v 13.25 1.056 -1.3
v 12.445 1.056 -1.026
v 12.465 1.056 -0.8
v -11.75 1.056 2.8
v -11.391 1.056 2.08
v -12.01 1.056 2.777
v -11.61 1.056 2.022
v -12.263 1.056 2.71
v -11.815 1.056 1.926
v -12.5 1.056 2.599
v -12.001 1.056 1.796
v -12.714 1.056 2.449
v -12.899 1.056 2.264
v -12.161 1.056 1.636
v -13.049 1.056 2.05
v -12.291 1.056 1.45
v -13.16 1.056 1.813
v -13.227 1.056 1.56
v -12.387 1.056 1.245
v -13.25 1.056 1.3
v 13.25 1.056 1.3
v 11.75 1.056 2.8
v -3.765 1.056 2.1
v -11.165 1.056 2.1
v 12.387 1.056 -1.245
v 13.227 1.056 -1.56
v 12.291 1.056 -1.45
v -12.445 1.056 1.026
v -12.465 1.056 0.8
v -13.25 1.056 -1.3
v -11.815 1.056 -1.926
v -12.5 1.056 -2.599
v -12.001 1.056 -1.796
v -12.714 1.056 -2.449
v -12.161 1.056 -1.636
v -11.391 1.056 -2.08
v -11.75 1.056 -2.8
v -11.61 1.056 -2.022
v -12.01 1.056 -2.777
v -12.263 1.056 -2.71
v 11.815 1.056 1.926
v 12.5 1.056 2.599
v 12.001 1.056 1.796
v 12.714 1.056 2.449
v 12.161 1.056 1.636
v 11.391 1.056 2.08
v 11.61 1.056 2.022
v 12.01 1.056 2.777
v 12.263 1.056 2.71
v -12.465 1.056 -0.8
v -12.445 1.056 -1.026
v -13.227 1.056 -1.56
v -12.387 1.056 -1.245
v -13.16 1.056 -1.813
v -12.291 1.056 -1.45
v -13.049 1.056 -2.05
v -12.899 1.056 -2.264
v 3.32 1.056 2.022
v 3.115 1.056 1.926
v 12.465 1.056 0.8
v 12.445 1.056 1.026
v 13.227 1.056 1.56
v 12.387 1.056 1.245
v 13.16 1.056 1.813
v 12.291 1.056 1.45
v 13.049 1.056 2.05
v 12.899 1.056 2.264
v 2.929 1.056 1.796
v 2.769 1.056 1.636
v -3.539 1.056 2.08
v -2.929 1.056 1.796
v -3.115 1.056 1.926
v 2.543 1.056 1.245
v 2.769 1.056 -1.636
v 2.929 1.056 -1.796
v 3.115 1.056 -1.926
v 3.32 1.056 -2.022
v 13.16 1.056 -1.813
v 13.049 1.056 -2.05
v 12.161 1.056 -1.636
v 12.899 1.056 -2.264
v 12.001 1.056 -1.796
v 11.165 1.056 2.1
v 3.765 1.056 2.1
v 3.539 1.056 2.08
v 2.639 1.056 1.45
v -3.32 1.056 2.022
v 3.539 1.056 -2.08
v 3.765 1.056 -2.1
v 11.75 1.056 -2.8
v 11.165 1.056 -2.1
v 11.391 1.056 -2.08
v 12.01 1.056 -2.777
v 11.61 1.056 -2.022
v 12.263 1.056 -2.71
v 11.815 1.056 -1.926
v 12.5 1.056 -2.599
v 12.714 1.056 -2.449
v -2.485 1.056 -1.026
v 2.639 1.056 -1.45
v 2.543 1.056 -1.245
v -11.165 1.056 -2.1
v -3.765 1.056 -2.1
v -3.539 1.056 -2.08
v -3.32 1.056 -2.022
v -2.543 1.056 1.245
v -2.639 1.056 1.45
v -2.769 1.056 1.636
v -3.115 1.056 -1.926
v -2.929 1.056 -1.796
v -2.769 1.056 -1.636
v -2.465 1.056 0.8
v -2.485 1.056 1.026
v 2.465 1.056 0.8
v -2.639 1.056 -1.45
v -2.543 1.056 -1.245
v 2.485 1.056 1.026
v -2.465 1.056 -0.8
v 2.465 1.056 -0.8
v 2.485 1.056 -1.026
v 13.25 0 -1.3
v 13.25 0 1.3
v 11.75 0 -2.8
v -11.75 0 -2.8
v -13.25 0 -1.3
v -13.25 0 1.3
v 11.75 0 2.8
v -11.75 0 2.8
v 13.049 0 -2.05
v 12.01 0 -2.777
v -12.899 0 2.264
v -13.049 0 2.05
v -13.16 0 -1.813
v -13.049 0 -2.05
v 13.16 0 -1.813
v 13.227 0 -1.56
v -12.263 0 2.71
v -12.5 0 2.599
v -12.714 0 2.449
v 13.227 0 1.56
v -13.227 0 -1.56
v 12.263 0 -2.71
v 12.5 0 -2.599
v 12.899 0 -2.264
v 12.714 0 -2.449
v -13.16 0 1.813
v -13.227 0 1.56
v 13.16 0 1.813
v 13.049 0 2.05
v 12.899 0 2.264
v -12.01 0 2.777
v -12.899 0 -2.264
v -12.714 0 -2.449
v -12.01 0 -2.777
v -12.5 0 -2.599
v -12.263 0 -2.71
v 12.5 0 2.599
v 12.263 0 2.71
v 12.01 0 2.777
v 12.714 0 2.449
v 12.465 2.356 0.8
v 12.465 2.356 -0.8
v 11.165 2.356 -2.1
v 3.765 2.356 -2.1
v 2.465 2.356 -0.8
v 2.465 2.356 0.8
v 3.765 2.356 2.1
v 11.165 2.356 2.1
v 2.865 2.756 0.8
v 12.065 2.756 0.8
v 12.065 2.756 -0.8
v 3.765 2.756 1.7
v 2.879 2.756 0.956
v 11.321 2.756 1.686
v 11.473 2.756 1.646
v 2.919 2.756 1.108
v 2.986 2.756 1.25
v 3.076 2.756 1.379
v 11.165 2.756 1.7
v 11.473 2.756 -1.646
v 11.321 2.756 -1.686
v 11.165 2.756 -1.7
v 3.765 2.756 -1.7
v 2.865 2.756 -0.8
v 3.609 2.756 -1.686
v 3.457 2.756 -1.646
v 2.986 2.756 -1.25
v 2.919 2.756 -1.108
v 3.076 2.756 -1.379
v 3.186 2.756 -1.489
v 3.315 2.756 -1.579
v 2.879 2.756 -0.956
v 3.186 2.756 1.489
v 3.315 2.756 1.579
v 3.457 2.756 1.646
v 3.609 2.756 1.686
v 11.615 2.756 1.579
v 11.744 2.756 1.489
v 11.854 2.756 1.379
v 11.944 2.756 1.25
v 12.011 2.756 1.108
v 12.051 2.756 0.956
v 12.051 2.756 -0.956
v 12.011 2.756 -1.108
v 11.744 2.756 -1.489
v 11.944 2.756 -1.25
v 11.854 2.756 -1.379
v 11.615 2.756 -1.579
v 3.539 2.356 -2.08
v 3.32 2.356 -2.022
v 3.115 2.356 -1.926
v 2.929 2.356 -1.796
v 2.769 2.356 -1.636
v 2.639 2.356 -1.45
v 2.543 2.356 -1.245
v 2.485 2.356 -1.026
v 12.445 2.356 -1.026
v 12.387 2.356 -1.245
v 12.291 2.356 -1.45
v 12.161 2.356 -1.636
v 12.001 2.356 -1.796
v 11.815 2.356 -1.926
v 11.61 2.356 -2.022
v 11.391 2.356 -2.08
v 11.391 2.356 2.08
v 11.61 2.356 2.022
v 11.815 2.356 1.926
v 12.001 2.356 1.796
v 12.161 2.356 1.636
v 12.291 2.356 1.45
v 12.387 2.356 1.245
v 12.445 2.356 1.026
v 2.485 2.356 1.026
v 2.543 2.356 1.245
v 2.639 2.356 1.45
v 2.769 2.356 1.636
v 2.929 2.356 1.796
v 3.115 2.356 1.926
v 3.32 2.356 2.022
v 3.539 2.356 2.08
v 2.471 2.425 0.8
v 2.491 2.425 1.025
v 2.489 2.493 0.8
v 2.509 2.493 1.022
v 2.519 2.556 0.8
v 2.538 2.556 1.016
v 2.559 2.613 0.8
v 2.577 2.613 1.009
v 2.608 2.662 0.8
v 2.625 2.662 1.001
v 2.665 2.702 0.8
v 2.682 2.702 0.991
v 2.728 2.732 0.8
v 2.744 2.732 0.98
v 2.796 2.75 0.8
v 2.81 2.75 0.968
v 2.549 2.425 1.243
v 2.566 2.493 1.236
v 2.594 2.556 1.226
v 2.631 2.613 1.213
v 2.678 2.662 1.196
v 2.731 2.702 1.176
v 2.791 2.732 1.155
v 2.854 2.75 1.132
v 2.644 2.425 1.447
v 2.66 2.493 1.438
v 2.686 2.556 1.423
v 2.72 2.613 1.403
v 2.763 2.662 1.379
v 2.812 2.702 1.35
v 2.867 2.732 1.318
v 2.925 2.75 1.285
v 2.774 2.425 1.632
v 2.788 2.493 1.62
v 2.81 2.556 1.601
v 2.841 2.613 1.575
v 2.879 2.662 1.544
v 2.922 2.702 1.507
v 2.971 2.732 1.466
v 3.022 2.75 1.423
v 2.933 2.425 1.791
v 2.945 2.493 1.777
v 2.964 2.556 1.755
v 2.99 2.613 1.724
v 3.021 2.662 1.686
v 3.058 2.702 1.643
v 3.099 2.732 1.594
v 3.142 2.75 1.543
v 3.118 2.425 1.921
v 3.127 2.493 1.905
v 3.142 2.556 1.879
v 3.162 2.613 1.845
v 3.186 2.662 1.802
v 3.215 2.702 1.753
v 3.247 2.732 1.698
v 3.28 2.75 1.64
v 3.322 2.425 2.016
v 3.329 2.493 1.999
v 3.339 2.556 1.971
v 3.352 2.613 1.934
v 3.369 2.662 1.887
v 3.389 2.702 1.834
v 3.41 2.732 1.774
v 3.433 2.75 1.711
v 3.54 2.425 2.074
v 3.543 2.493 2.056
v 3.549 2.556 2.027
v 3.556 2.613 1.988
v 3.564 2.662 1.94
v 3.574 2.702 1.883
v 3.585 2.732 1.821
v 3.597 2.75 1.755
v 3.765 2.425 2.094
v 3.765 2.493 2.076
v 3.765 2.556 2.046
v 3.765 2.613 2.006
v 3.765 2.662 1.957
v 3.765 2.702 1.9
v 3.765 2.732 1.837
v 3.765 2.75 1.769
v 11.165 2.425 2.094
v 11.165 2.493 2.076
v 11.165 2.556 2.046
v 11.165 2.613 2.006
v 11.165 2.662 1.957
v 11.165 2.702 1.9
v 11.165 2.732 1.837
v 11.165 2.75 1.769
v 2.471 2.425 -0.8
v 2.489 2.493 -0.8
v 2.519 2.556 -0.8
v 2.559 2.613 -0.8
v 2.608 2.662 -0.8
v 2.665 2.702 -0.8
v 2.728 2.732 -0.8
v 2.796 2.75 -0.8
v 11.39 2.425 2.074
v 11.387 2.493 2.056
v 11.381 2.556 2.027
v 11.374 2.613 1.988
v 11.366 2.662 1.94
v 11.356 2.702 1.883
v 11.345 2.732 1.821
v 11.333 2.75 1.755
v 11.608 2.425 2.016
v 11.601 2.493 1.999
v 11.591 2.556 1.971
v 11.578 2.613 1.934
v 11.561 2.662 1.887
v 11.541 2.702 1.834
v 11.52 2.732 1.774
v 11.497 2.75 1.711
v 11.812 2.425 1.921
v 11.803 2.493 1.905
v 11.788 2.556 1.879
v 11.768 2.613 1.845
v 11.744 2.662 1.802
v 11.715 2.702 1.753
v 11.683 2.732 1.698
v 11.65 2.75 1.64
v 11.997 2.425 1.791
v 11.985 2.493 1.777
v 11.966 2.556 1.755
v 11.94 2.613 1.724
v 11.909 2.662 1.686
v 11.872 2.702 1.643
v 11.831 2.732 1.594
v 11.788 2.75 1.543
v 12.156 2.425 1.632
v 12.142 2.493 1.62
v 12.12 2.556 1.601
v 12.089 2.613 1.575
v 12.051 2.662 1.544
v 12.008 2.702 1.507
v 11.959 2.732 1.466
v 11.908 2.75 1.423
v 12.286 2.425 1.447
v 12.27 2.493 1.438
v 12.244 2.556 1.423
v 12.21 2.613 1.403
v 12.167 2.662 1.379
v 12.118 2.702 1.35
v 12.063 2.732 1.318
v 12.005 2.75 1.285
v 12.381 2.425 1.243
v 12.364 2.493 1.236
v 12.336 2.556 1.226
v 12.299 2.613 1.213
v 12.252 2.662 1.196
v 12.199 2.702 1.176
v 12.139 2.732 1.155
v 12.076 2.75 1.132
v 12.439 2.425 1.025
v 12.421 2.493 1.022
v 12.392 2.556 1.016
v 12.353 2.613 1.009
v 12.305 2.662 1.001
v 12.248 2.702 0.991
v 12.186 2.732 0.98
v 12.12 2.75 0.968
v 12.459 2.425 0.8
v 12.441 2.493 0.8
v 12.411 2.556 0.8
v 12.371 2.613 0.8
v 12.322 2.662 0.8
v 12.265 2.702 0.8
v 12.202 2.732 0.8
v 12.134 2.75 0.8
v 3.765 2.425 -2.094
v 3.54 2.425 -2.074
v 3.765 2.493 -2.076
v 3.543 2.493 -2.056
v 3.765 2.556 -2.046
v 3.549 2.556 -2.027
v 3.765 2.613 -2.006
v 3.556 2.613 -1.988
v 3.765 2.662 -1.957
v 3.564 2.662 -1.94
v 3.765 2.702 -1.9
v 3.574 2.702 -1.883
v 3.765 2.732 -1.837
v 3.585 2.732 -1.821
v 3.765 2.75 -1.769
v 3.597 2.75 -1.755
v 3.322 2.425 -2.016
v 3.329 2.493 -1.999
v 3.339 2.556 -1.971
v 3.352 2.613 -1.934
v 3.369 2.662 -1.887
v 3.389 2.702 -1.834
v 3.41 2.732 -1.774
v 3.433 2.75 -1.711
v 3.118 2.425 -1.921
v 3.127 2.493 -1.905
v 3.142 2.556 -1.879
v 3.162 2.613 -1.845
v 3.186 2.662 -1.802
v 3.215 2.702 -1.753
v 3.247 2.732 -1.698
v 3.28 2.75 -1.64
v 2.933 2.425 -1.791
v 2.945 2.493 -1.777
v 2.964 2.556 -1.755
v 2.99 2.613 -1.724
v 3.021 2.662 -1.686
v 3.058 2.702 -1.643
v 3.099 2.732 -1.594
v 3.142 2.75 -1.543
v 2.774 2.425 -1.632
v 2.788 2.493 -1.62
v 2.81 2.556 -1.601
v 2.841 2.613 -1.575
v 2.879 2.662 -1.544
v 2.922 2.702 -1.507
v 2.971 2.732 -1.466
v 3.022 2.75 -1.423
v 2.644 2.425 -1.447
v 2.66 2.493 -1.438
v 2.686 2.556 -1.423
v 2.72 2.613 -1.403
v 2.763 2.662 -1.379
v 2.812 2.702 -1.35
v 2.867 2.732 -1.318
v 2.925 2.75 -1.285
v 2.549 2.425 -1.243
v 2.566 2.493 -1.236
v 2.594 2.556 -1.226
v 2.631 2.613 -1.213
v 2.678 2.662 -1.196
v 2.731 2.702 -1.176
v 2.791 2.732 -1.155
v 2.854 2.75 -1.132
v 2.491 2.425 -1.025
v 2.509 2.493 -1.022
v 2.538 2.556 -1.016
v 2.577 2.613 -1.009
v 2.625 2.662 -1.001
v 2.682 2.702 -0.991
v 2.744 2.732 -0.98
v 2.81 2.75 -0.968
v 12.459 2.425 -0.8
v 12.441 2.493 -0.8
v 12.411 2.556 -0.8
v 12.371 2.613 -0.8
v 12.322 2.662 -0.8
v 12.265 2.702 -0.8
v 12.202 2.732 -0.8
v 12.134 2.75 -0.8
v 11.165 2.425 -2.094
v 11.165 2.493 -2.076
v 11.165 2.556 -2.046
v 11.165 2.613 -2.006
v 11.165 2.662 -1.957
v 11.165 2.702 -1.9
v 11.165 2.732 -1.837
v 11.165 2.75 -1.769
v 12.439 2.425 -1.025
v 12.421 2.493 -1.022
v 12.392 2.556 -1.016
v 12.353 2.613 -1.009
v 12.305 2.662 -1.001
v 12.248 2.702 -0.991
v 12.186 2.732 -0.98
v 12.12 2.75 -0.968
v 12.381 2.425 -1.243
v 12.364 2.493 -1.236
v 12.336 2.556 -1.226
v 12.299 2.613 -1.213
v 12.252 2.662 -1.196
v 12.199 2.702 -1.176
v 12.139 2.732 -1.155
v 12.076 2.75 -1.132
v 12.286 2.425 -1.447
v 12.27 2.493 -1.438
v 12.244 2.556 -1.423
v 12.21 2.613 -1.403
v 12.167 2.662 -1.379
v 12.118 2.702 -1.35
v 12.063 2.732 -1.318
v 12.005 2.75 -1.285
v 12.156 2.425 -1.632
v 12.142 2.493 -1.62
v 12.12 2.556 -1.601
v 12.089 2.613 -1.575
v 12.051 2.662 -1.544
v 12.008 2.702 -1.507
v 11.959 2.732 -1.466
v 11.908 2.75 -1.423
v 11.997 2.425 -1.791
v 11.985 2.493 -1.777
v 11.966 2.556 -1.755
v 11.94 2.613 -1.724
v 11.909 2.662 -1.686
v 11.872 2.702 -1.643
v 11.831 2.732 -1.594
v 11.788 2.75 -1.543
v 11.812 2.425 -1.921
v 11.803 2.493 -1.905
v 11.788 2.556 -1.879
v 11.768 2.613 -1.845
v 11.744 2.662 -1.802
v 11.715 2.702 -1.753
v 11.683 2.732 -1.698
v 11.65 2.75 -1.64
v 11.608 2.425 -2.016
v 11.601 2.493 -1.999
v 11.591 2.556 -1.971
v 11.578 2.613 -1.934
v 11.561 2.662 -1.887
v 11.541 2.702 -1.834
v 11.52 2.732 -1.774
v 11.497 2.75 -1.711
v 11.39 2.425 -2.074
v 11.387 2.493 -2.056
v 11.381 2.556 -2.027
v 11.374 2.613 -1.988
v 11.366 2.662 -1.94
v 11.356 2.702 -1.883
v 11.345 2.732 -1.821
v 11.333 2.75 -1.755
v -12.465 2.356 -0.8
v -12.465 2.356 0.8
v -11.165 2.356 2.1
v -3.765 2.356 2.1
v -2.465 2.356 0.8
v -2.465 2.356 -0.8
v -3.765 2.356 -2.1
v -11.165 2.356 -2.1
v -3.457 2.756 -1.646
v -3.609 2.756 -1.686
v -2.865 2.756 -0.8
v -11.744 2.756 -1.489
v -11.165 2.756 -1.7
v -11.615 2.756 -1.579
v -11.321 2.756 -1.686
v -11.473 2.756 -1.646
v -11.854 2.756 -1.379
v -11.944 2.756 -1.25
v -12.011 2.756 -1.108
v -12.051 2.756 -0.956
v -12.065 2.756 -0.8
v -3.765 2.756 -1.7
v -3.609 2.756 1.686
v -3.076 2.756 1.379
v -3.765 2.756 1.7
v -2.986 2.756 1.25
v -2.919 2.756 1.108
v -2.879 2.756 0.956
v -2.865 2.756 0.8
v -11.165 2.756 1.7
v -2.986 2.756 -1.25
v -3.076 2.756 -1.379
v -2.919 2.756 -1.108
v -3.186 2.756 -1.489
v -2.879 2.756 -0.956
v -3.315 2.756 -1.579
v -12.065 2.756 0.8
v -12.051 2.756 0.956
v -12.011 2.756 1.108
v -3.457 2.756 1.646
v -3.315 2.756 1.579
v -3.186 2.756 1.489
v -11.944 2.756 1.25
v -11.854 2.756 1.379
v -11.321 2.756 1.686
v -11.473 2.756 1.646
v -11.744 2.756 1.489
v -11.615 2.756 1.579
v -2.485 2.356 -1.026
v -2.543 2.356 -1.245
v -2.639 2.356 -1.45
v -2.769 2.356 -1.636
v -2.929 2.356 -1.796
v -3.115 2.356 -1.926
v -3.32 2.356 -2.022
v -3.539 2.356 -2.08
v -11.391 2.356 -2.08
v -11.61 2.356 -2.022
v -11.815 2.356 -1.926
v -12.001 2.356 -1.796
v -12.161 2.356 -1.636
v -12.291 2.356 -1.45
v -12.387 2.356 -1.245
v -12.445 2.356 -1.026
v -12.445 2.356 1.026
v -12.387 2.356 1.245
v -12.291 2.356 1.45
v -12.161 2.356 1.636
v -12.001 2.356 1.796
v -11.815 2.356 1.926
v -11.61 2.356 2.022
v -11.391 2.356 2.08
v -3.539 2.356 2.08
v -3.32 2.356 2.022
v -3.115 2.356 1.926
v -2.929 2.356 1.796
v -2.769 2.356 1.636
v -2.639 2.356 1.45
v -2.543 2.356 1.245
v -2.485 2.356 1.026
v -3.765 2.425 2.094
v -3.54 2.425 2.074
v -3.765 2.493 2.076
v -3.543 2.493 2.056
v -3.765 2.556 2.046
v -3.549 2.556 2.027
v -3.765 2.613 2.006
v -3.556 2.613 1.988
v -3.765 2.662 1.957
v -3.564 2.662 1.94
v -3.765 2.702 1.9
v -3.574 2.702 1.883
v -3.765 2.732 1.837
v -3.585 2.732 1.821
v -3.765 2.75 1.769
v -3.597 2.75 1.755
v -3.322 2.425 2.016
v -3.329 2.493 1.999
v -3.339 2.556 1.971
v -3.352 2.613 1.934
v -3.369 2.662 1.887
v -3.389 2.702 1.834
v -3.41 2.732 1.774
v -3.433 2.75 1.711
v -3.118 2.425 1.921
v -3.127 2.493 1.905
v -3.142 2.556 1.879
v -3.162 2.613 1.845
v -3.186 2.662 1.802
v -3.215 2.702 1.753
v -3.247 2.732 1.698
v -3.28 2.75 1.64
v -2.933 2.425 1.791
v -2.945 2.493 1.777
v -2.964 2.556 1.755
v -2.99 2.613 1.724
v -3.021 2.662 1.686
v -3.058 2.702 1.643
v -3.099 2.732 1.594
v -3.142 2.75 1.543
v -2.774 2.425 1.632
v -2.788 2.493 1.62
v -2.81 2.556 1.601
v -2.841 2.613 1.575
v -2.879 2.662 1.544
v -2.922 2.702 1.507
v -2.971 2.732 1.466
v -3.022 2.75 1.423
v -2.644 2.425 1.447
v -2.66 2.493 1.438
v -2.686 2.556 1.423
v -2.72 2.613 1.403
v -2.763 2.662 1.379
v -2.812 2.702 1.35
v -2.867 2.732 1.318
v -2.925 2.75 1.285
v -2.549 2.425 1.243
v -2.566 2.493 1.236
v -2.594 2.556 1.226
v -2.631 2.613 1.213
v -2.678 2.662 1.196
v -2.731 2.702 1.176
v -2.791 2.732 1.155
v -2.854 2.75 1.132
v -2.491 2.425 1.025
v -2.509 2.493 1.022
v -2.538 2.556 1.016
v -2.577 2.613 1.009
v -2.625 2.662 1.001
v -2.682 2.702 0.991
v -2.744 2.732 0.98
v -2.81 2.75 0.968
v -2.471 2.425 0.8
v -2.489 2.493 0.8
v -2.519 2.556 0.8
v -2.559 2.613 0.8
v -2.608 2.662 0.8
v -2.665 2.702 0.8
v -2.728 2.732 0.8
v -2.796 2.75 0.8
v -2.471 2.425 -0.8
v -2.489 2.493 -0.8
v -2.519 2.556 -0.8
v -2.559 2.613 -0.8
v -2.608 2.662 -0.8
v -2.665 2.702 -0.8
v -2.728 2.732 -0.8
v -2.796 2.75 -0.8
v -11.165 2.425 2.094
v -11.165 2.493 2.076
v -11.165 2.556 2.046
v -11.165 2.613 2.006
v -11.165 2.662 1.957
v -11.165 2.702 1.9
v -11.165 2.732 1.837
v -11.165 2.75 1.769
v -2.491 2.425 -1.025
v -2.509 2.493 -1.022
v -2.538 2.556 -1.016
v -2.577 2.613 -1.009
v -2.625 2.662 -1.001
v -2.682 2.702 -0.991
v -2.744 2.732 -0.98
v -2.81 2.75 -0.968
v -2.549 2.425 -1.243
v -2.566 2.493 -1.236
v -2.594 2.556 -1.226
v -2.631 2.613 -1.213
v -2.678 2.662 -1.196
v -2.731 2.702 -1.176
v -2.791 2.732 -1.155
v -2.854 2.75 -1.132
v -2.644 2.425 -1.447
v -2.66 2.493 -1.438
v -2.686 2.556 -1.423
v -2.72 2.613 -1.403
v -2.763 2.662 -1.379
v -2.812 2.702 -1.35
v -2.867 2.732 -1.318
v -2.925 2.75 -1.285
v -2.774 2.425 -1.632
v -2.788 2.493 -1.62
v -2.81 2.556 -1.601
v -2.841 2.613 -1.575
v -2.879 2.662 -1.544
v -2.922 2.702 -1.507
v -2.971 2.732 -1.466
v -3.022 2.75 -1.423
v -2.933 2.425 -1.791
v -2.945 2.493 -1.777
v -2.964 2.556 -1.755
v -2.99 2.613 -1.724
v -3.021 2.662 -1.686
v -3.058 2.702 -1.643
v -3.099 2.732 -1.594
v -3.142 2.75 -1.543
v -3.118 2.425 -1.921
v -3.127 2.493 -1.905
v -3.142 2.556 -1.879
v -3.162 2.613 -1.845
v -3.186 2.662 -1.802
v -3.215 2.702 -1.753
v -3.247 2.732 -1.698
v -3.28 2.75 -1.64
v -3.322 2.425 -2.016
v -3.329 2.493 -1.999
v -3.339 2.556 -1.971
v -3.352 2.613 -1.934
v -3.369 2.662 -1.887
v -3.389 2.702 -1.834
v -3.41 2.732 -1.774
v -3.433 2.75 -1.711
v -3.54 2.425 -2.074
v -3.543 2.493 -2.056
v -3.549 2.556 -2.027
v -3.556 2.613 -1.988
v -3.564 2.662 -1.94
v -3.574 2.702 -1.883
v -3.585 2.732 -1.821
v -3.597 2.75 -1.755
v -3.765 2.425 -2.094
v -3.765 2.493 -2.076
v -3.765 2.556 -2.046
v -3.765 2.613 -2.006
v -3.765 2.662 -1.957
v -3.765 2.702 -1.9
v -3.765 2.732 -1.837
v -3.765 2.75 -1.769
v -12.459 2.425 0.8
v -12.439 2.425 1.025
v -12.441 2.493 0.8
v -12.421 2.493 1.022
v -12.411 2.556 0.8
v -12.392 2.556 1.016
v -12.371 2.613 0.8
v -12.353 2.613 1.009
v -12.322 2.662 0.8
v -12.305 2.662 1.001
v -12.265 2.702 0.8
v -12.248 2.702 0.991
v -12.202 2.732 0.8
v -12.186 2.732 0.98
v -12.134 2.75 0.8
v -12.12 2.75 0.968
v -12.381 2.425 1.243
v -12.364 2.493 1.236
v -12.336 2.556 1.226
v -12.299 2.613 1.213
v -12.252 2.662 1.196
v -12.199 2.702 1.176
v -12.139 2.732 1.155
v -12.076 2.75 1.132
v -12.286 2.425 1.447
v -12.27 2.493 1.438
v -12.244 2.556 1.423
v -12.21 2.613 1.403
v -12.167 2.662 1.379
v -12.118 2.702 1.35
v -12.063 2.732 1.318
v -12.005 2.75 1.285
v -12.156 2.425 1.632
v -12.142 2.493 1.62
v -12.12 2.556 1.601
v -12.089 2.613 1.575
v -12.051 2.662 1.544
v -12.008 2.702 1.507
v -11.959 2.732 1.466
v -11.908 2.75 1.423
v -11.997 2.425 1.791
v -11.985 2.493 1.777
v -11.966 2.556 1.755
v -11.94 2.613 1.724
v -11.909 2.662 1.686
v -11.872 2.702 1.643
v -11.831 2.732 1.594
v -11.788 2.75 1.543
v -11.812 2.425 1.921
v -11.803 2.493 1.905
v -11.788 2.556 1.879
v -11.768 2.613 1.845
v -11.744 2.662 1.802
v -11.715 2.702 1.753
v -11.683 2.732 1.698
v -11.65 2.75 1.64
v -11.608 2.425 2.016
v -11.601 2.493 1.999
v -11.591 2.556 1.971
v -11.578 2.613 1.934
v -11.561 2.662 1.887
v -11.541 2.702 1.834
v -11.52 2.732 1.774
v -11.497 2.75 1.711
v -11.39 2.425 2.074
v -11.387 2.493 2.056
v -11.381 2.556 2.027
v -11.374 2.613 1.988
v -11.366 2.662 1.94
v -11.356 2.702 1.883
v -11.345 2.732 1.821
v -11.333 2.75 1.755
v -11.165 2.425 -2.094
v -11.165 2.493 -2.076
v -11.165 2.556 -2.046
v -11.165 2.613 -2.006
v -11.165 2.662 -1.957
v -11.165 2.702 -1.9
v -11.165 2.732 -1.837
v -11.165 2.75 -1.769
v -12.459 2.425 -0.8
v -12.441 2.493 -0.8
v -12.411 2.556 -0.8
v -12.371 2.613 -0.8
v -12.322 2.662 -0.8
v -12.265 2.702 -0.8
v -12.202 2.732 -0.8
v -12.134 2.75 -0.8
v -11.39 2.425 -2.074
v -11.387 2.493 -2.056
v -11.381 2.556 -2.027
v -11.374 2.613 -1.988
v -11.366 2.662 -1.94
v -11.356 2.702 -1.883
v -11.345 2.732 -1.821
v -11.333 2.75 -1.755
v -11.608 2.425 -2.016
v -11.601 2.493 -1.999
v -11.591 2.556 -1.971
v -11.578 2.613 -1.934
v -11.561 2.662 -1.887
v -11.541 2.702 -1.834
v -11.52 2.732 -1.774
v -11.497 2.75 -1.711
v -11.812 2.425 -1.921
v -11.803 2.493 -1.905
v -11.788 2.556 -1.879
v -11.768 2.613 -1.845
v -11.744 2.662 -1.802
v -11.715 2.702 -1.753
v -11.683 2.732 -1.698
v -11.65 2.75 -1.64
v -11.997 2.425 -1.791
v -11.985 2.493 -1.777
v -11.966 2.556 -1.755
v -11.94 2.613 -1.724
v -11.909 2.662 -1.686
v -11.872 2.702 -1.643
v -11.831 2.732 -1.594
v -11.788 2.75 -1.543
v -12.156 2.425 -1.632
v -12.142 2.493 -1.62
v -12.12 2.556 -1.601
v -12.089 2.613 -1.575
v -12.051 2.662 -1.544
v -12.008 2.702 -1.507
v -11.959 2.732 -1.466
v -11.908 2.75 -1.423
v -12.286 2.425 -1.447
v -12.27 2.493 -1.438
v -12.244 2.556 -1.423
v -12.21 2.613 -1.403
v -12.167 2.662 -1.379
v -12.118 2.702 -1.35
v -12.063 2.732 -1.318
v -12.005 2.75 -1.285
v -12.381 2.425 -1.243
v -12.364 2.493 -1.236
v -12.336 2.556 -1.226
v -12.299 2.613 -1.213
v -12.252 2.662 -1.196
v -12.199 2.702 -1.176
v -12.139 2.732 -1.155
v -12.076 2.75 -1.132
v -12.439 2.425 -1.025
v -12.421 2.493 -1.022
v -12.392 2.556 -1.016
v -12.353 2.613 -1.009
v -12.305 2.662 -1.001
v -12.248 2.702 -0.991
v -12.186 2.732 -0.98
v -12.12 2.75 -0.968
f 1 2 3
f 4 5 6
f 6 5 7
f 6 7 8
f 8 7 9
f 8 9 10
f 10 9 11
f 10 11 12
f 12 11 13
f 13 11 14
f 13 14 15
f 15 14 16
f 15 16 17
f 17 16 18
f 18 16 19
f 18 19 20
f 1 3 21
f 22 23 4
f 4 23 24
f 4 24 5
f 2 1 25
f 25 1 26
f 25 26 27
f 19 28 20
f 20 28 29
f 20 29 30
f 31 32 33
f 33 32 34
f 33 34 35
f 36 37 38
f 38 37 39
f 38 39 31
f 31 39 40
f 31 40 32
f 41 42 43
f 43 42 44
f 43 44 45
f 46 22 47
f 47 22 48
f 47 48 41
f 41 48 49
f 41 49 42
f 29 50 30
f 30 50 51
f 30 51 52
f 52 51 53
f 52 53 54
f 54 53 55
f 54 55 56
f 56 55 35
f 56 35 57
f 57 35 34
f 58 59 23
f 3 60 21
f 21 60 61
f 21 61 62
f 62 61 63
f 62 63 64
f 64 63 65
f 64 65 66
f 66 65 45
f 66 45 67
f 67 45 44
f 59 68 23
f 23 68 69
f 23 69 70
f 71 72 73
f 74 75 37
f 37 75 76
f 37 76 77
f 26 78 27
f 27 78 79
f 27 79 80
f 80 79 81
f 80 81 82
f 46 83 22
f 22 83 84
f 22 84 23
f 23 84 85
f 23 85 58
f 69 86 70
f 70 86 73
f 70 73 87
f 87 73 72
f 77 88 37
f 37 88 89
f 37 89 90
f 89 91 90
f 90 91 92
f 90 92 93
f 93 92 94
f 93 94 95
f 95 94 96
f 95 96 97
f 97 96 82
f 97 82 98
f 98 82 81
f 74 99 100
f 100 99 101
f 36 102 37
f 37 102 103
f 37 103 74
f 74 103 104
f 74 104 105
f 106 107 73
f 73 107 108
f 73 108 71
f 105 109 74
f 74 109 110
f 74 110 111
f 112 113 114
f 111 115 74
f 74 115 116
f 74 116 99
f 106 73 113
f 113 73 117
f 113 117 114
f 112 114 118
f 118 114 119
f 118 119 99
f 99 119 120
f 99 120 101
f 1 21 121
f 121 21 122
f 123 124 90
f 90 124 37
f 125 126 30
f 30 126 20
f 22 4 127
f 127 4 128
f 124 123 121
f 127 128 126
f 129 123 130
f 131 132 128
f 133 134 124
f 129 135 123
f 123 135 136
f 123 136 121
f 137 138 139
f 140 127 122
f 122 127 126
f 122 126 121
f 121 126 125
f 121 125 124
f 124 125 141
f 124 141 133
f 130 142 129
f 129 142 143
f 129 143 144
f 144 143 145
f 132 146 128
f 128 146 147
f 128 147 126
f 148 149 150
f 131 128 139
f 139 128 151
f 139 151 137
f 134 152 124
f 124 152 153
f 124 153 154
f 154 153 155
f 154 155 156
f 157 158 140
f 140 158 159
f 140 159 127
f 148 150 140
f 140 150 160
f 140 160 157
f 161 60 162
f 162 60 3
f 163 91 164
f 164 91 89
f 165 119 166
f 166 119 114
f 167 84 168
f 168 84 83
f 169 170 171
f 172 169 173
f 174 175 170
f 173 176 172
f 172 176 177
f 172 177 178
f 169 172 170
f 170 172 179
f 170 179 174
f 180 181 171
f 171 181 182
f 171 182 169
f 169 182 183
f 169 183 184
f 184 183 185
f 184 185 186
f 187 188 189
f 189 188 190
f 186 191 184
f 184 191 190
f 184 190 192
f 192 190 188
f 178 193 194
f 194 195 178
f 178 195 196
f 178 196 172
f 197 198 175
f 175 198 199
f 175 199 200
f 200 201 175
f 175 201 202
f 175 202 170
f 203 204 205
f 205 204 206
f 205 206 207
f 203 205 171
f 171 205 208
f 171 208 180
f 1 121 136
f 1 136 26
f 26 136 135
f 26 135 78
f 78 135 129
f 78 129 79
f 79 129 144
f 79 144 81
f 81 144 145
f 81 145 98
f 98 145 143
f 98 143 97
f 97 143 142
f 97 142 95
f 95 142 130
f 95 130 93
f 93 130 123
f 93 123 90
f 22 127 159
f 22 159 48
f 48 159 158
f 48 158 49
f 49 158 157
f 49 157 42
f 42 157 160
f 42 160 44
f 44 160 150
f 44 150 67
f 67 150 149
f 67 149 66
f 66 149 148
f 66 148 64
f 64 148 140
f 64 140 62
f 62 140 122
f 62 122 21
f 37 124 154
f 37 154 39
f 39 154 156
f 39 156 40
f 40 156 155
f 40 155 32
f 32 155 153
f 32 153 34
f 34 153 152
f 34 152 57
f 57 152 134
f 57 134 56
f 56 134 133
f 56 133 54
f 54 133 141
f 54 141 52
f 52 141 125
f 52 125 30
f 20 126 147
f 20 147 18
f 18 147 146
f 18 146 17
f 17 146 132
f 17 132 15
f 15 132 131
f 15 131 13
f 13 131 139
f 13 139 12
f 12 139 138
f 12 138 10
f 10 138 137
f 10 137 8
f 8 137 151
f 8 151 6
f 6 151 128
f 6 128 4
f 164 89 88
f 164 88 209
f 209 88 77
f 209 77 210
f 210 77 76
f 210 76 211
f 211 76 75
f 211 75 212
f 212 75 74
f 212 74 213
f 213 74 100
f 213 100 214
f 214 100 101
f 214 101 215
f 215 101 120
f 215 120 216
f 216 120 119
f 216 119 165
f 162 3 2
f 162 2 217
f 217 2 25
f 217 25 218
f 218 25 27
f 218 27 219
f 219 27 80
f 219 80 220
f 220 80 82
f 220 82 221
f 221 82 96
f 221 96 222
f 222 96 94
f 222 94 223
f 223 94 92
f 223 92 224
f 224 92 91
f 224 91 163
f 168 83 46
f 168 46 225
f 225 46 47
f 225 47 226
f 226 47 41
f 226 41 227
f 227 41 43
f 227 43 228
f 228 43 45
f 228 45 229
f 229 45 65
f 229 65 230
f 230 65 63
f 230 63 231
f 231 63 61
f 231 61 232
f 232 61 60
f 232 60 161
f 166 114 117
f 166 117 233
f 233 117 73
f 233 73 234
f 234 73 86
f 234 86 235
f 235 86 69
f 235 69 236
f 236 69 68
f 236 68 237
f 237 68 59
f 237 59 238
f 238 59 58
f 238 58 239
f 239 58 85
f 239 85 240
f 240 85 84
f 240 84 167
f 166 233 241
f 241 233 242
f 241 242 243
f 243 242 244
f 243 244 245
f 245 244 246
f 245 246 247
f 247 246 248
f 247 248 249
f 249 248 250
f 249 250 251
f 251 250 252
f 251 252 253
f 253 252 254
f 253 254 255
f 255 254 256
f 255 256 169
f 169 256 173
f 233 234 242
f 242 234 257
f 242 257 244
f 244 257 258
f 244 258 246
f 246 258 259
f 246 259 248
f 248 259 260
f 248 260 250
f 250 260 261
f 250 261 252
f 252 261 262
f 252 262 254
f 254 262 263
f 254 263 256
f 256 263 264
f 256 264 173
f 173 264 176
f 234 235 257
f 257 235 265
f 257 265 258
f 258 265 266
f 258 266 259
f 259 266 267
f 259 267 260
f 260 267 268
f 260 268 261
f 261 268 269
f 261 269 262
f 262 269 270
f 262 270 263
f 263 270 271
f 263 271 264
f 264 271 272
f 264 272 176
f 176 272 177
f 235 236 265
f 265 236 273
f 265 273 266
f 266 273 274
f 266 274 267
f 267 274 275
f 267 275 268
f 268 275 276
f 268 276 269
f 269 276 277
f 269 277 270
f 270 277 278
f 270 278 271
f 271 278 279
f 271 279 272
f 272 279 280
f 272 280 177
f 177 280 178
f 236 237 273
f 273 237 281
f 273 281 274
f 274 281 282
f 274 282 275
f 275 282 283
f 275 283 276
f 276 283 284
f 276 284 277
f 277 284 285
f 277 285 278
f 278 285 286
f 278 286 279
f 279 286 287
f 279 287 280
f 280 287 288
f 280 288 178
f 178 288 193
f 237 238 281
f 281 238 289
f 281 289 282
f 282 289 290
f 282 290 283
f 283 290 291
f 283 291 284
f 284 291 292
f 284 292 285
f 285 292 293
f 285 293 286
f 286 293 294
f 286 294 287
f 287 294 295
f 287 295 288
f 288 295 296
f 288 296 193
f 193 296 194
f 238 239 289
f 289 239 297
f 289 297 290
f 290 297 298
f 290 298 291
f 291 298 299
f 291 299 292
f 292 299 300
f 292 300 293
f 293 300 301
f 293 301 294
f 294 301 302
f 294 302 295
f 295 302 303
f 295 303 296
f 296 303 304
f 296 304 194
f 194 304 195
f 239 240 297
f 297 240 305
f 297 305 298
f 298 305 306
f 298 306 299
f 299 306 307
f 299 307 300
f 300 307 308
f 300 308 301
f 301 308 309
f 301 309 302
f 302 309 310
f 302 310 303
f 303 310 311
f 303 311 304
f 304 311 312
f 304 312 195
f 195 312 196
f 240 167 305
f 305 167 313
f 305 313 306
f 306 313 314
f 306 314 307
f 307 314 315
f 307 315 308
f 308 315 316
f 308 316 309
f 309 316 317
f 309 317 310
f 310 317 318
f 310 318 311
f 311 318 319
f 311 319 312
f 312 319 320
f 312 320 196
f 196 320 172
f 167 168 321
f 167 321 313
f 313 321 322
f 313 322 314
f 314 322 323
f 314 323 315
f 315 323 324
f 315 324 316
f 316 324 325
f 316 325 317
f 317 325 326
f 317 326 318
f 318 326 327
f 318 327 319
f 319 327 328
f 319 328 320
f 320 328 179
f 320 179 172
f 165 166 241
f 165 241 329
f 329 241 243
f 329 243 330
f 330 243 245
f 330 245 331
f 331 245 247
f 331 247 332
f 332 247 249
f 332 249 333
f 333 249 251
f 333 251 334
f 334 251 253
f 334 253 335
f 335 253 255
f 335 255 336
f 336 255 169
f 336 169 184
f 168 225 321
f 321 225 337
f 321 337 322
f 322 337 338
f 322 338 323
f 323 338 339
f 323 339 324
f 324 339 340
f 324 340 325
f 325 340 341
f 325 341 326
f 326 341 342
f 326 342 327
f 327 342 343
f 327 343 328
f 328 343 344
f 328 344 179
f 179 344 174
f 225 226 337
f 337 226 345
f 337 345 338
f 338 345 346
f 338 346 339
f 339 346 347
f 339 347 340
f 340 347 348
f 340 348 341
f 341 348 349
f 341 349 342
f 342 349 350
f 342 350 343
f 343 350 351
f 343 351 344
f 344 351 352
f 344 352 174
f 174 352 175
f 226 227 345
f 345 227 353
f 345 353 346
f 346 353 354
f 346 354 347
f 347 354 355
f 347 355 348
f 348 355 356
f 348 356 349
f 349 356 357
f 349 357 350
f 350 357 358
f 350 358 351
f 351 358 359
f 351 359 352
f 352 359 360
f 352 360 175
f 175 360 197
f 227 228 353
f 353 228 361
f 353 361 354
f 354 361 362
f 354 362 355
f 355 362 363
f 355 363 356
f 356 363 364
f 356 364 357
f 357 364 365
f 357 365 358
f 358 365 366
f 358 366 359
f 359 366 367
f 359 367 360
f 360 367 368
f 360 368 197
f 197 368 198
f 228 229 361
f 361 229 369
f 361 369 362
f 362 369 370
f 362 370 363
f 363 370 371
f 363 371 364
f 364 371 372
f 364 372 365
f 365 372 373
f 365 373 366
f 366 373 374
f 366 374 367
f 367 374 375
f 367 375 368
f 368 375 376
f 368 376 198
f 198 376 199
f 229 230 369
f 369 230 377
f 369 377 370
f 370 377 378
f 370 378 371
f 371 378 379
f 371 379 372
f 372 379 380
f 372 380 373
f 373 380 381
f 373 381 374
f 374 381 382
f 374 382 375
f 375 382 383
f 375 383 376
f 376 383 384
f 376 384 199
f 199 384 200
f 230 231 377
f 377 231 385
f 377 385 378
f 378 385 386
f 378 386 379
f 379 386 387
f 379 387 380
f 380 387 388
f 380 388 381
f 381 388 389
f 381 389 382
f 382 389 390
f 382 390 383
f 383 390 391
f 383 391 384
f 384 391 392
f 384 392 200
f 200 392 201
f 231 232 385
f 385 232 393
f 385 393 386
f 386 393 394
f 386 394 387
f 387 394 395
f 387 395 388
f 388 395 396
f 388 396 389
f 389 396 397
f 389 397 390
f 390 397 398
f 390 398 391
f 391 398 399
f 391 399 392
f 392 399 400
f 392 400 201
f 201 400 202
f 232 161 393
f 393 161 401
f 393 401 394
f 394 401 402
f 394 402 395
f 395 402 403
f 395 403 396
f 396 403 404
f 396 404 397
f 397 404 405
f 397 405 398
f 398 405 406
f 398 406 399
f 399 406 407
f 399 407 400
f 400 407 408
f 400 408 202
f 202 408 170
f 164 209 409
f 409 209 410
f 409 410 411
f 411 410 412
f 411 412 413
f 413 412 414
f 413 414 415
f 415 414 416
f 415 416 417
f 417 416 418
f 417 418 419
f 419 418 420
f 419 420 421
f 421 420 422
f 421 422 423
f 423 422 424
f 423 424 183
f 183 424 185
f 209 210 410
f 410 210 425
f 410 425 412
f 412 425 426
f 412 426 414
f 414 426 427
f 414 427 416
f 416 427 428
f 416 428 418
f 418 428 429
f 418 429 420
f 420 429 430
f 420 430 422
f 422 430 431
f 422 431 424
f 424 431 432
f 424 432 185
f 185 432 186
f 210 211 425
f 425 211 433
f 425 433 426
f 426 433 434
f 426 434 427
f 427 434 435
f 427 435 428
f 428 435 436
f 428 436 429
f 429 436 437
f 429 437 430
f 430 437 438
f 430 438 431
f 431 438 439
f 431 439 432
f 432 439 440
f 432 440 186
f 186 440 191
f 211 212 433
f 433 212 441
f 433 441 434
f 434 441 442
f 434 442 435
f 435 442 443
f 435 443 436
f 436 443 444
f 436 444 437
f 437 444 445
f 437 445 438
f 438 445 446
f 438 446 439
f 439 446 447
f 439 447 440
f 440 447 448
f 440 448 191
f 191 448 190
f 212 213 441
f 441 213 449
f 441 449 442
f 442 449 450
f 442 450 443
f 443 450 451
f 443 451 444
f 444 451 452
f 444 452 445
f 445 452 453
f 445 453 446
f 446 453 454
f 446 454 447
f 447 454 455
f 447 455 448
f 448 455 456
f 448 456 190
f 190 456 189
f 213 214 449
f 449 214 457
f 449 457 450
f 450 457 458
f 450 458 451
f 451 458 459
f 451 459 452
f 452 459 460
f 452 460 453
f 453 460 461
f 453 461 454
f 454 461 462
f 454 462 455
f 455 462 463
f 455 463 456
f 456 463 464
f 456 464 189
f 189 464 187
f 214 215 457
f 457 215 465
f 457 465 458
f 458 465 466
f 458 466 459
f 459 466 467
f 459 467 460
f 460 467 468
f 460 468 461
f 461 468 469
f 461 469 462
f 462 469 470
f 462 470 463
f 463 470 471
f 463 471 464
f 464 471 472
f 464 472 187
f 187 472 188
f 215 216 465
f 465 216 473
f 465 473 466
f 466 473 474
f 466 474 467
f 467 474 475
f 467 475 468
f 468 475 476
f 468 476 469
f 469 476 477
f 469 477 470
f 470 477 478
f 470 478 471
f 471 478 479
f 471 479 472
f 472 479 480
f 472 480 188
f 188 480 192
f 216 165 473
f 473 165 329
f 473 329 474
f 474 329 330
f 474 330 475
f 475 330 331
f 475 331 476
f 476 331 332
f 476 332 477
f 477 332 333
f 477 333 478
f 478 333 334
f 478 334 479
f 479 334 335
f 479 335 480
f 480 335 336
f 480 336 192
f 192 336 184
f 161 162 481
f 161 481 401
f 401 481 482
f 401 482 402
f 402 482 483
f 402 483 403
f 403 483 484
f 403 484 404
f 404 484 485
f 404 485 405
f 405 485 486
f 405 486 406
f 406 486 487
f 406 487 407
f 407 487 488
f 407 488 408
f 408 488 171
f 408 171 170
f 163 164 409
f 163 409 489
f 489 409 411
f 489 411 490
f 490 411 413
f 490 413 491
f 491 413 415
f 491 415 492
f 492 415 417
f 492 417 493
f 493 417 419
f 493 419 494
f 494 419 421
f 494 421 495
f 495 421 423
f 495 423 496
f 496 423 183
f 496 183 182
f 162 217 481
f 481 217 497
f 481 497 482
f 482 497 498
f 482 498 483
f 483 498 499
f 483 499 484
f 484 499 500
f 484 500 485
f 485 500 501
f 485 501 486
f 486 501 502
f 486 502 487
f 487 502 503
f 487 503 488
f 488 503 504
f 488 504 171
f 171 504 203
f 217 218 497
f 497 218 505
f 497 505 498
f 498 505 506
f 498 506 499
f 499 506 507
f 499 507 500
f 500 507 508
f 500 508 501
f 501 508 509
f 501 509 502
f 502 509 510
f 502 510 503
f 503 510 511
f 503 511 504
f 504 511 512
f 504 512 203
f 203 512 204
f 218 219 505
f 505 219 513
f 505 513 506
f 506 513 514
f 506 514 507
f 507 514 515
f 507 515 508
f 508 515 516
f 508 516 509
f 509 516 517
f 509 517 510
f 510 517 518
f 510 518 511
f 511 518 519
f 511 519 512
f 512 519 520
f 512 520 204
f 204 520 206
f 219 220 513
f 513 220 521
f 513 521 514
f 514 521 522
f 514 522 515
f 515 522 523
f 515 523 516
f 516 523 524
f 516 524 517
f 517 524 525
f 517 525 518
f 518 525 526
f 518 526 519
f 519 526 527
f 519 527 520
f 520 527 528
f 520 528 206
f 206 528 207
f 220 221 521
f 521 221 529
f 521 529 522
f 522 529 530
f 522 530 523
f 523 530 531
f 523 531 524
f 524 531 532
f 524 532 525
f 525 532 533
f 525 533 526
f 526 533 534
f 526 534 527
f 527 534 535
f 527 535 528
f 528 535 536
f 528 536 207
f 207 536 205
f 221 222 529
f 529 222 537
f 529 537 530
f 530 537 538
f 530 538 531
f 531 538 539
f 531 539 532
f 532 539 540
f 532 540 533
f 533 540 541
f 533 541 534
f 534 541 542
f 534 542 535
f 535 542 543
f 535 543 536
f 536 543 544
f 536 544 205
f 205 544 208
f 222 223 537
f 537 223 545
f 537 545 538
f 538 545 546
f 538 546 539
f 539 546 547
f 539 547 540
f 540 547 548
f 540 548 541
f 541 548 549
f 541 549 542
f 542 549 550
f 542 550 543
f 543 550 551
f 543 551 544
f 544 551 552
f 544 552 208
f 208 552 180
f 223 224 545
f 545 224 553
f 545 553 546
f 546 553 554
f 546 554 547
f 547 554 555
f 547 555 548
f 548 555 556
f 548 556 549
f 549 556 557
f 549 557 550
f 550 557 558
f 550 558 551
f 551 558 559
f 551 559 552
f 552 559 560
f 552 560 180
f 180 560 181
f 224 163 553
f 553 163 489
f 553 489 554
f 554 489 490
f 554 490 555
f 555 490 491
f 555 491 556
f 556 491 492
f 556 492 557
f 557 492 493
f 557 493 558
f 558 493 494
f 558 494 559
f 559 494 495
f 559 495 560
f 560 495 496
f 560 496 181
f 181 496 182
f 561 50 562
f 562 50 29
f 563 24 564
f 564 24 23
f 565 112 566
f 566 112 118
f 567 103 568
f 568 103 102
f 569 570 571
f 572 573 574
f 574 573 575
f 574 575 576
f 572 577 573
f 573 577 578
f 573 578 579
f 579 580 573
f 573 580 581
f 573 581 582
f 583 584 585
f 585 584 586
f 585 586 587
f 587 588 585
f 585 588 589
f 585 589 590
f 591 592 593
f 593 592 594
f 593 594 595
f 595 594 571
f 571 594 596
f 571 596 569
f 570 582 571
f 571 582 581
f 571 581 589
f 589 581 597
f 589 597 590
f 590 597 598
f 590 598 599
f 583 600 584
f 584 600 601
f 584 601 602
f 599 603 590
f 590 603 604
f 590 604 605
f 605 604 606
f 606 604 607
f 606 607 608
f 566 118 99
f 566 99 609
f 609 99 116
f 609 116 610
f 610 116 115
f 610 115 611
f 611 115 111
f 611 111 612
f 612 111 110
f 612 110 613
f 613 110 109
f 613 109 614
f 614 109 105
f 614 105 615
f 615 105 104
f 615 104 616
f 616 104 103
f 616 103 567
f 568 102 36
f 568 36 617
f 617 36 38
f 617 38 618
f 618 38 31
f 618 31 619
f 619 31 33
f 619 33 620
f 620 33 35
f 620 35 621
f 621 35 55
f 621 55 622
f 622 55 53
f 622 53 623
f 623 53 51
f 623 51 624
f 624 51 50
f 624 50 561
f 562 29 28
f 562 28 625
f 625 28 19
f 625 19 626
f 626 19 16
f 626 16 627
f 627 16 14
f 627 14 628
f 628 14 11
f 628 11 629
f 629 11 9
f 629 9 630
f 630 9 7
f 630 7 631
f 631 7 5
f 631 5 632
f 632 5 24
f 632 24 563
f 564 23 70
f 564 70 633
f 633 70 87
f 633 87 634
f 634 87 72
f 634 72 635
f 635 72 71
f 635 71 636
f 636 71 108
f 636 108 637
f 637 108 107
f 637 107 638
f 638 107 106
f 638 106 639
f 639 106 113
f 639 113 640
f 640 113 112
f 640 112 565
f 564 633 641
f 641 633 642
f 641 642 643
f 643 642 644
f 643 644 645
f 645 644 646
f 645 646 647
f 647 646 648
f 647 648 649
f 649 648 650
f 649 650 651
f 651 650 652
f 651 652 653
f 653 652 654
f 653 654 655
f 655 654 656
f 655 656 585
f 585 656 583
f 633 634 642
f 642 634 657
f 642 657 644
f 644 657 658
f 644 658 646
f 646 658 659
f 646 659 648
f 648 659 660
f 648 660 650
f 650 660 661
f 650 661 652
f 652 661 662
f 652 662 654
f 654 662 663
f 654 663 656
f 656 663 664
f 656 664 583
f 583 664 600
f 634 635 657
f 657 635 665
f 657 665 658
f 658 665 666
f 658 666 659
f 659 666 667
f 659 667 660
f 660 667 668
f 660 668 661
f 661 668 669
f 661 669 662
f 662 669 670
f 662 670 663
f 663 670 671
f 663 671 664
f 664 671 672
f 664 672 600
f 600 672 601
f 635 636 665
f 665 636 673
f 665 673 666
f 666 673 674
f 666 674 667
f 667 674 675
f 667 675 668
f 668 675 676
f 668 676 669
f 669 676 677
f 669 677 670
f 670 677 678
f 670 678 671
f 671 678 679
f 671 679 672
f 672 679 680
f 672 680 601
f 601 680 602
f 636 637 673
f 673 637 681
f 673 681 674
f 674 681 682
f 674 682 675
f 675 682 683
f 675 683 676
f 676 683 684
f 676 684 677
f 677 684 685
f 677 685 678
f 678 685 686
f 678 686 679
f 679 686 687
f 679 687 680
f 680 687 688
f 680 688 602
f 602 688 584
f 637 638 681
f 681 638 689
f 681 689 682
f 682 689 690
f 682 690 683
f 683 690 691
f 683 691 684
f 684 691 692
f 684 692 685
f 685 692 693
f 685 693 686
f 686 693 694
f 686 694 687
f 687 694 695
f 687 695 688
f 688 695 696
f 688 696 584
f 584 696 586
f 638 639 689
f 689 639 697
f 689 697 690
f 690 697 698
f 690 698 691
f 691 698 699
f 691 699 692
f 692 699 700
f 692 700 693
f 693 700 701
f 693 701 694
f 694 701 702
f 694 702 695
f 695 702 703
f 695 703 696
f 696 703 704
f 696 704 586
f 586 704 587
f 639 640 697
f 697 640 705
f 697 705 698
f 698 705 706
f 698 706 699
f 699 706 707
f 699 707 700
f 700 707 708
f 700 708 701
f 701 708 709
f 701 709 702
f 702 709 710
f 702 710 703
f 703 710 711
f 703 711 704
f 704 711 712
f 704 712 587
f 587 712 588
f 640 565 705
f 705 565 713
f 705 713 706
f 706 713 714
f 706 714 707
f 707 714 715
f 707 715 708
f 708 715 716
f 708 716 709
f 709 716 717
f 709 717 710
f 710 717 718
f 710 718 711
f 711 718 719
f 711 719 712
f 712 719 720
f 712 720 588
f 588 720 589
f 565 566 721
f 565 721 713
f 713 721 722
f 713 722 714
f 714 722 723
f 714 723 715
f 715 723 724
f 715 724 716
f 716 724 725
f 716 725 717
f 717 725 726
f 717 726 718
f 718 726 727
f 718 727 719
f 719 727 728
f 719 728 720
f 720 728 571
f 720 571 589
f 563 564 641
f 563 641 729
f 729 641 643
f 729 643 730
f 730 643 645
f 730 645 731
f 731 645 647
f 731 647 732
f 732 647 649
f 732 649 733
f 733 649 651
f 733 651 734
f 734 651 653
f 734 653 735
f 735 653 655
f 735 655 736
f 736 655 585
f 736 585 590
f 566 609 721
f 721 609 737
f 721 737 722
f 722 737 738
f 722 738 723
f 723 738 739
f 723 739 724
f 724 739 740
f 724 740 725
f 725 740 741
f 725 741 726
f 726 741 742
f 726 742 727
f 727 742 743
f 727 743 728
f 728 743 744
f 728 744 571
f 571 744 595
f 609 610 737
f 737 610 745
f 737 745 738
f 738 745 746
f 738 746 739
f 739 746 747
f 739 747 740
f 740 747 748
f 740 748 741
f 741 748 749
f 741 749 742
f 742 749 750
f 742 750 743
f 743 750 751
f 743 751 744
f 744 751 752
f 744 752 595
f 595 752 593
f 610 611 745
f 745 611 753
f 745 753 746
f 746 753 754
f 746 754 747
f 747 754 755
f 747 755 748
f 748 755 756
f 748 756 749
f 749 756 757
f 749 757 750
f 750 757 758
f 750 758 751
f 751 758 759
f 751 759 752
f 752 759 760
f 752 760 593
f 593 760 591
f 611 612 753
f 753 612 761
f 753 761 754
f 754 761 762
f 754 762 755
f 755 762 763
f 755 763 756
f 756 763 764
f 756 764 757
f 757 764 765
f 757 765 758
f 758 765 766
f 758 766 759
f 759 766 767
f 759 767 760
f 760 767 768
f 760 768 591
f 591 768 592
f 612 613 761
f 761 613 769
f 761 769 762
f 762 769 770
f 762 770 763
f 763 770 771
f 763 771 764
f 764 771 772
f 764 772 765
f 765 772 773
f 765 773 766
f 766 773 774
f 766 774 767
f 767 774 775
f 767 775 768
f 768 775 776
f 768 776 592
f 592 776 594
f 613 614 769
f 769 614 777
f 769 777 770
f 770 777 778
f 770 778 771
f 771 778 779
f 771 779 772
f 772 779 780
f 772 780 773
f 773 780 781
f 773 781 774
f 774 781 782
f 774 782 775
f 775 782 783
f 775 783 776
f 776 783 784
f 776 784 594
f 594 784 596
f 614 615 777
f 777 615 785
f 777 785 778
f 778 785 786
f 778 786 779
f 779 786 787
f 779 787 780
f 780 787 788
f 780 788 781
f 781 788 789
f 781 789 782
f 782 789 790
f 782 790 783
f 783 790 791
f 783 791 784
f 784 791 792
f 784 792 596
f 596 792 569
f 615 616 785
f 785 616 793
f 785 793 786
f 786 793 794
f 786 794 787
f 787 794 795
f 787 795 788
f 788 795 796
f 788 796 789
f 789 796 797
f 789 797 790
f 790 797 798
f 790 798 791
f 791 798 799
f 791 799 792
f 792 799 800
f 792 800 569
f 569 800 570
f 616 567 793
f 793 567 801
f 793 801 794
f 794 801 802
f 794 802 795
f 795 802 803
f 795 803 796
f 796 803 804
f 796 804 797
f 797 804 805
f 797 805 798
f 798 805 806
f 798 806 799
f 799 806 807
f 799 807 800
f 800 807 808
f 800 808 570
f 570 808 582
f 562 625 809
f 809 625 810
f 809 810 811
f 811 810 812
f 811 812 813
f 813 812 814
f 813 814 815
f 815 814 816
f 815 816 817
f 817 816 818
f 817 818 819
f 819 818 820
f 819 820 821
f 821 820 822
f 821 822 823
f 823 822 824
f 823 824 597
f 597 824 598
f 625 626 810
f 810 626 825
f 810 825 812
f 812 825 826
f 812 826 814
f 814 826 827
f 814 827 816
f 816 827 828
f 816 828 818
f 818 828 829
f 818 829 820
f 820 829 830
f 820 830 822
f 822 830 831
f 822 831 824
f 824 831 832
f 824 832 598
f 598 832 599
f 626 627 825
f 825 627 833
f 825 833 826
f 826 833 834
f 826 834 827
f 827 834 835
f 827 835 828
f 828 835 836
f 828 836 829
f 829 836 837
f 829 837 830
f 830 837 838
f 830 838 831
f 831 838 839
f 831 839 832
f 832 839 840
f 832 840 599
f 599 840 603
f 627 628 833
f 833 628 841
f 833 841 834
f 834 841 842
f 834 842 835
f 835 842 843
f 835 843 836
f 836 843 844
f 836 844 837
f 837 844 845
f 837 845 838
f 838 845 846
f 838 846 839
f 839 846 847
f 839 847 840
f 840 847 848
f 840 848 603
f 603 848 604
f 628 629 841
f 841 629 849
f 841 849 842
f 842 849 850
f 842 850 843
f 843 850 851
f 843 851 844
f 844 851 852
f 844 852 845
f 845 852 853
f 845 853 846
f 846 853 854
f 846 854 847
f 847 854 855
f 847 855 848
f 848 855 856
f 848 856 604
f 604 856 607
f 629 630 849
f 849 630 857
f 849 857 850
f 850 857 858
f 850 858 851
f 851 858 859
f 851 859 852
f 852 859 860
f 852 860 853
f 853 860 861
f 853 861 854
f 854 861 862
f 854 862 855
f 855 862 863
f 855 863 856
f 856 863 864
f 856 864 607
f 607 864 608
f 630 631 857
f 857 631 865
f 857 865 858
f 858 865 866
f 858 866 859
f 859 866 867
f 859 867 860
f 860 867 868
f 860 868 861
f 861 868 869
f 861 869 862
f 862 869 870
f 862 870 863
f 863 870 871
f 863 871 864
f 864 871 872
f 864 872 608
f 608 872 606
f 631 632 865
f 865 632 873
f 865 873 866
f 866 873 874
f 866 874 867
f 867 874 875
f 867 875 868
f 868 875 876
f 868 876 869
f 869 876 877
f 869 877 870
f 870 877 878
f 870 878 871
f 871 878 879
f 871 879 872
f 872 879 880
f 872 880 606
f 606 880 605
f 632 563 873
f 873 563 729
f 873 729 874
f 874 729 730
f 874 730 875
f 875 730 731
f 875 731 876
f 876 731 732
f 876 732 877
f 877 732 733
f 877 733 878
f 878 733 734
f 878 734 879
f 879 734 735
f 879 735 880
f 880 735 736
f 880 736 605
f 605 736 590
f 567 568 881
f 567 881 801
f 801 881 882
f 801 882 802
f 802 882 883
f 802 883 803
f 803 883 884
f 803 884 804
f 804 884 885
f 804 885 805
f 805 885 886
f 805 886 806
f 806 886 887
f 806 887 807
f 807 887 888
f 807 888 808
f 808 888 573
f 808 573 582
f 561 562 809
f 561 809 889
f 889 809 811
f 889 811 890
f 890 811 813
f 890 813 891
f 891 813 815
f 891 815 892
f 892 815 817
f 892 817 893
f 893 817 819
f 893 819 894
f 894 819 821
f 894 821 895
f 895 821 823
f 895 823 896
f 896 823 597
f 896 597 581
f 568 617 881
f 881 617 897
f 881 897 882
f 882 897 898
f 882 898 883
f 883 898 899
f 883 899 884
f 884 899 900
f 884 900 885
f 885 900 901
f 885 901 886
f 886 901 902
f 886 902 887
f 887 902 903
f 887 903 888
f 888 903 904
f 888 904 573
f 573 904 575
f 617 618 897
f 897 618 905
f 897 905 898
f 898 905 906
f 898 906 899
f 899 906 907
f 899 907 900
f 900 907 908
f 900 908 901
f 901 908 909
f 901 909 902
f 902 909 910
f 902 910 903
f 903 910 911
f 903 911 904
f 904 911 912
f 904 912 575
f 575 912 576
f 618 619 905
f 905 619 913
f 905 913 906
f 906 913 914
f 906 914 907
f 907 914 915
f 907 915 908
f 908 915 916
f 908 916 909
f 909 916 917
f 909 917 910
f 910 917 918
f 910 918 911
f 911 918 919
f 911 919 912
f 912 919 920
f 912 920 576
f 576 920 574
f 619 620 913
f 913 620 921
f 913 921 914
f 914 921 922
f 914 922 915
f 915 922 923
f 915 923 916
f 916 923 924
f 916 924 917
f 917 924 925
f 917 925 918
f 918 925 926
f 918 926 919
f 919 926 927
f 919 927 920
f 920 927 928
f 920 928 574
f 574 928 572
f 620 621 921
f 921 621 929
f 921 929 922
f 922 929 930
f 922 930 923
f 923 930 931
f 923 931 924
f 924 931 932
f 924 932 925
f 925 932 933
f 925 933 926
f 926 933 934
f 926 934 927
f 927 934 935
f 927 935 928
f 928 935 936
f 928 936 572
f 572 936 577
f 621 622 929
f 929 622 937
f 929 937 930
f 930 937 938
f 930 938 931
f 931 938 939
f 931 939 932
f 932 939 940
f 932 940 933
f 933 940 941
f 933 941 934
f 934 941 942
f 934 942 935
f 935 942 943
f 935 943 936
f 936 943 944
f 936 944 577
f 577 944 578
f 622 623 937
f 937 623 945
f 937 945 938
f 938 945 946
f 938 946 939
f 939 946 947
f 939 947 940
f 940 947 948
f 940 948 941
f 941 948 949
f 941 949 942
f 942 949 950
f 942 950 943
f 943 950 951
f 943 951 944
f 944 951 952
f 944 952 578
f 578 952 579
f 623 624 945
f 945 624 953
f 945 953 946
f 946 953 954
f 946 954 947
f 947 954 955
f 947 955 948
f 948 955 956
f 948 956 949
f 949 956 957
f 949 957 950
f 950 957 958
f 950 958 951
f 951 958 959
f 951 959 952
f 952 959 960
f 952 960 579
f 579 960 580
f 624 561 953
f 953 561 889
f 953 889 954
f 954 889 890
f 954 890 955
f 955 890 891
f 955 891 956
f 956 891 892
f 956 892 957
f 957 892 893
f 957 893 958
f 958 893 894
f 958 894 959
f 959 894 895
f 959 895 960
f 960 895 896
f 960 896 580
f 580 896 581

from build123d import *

# Parameters (mm, degrees)
SKETCH1_W            = 26.5
SKETCH1_H            = 5.6
BOSS_EXTRUDE1_DEPTH  = 1.056
SKETCH2_W            = 10
SKETCH2_H            = 4.2
BOSS_EXTRUDE2_DEPTH  = 1.7
FILLET1_R            = 1.5
FILLET2_R            = 1.3
FILLET3_R            = 0.4
FILLET2_OF_MIRROR2_R = 1.3
FILLET3_OF_MIRROR2_R = 0.4


with BuildPart() as part:
    # Sketch1 → Boss-Extrude1 (new body)
    with BuildSketch(Plane(origin=(0, 0, 0), x_dir=(1, 0, 0), z_dir=(0, 1, 0))):
        Rectangle(SKETCH1_W, SKETCH1_H)
    extrude(amount=BOSS_EXTRUDE1_DEPTH)

    # Sketch2 → Boss-Extrude2 (add)
    with BuildSketch(Plane(origin=(0, 1.056, 0), x_dir=(1, 0, 0), z_dir=(0, 1, 0))):
        with Locations((7.465, 0)):
            Rectangle(SKETCH2_W, SKETCH2_H)
    boss_extrude2 = extrude(amount=BOSS_EXTRUDE2_DEPTH)

    # Fillet1
    fillet1_edges = [part.edges().sort_by_distance(p)[0] for p in [
        (13.25, 0.528, 2.8),
        (-13.25, 0.528, 2.8),
        (-13.25, 0.528, -2.8),
        (13.25, 0.528, -2.8),
    ]]
    fillet(fillet1_edges, radius=FILLET1_R)

    # Fillet2
    fillet2_edges = [part.edges().sort_by_distance(p)[0] for p in [
        (12.465, 1.906, 2.1),
        (12.465, 1.906, -2.1),
        (2.465, 1.906, -2.1),
        (2.465, 1.906, 2.1),
    ]]
    fillet(fillet2_edges, radius=FILLET2_R)

    # Fillet3
    fillet3_edges = [part.edges().sort_by_distance(p)[0] for p in [
        (2.465, 2.756, 0),
        (7.465, 2.756, -2.1),
        (12.465, 2.756, 0),
        (7.465, 2.756, 2.1),
        (2.845761184, 2.756, 1.719238816),
        (12.084238816, 2.756, 1.719238816),
        (12.084238816, 2.756, -1.719238816),
        (2.845761184, 2.756, -1.719238816),
    ]]
    fillet(fillet3_edges, radius=FILLET3_R)

    # Mirror2: Boss-Extrude2 across plane
    add(boss_extrude2.mirror(Plane(origin=(0, 0, 0), x_dir=(0, 0, 1), z_dir=(1, 0, 0))))

    # Fillet2 of Mirror2
    fillet2_of_mirror2_edges = [part.edges().sort_by_distance(p)[0] for p in [
        (-12.465, 1.906, 2.1),
        (-12.465, 1.906, -2.1),
        (-2.465, 1.906, -2.1),
        (-2.465, 1.906, 2.1),
    ]]
    fillet(fillet2_of_mirror2_edges, radius=FILLET2_OF_MIRROR2_R)

    # Fillet3 of Mirror2
    fillet3_of_mirror2_edges = [part.edges().sort_by_distance(p)[0] for p in [
        (-2.465, 2.756, 0),
        (-7.465, 2.756, -2.1),
        (-12.465, 2.756, 0),
        (-7.465, 2.756, 2.1),
        (-2.845761184, 2.756, 1.719238816),
        (-12.084238816, 2.756, 1.719238816),
        (-12.084238816, 2.756, -1.719238816),
        (-2.845761184, 2.756, -1.719238816),
    ]]
    fillet(fillet3_of_mirror2_edges, radius=FILLET3_OF_MIRROR2_R)


solid = part.part
